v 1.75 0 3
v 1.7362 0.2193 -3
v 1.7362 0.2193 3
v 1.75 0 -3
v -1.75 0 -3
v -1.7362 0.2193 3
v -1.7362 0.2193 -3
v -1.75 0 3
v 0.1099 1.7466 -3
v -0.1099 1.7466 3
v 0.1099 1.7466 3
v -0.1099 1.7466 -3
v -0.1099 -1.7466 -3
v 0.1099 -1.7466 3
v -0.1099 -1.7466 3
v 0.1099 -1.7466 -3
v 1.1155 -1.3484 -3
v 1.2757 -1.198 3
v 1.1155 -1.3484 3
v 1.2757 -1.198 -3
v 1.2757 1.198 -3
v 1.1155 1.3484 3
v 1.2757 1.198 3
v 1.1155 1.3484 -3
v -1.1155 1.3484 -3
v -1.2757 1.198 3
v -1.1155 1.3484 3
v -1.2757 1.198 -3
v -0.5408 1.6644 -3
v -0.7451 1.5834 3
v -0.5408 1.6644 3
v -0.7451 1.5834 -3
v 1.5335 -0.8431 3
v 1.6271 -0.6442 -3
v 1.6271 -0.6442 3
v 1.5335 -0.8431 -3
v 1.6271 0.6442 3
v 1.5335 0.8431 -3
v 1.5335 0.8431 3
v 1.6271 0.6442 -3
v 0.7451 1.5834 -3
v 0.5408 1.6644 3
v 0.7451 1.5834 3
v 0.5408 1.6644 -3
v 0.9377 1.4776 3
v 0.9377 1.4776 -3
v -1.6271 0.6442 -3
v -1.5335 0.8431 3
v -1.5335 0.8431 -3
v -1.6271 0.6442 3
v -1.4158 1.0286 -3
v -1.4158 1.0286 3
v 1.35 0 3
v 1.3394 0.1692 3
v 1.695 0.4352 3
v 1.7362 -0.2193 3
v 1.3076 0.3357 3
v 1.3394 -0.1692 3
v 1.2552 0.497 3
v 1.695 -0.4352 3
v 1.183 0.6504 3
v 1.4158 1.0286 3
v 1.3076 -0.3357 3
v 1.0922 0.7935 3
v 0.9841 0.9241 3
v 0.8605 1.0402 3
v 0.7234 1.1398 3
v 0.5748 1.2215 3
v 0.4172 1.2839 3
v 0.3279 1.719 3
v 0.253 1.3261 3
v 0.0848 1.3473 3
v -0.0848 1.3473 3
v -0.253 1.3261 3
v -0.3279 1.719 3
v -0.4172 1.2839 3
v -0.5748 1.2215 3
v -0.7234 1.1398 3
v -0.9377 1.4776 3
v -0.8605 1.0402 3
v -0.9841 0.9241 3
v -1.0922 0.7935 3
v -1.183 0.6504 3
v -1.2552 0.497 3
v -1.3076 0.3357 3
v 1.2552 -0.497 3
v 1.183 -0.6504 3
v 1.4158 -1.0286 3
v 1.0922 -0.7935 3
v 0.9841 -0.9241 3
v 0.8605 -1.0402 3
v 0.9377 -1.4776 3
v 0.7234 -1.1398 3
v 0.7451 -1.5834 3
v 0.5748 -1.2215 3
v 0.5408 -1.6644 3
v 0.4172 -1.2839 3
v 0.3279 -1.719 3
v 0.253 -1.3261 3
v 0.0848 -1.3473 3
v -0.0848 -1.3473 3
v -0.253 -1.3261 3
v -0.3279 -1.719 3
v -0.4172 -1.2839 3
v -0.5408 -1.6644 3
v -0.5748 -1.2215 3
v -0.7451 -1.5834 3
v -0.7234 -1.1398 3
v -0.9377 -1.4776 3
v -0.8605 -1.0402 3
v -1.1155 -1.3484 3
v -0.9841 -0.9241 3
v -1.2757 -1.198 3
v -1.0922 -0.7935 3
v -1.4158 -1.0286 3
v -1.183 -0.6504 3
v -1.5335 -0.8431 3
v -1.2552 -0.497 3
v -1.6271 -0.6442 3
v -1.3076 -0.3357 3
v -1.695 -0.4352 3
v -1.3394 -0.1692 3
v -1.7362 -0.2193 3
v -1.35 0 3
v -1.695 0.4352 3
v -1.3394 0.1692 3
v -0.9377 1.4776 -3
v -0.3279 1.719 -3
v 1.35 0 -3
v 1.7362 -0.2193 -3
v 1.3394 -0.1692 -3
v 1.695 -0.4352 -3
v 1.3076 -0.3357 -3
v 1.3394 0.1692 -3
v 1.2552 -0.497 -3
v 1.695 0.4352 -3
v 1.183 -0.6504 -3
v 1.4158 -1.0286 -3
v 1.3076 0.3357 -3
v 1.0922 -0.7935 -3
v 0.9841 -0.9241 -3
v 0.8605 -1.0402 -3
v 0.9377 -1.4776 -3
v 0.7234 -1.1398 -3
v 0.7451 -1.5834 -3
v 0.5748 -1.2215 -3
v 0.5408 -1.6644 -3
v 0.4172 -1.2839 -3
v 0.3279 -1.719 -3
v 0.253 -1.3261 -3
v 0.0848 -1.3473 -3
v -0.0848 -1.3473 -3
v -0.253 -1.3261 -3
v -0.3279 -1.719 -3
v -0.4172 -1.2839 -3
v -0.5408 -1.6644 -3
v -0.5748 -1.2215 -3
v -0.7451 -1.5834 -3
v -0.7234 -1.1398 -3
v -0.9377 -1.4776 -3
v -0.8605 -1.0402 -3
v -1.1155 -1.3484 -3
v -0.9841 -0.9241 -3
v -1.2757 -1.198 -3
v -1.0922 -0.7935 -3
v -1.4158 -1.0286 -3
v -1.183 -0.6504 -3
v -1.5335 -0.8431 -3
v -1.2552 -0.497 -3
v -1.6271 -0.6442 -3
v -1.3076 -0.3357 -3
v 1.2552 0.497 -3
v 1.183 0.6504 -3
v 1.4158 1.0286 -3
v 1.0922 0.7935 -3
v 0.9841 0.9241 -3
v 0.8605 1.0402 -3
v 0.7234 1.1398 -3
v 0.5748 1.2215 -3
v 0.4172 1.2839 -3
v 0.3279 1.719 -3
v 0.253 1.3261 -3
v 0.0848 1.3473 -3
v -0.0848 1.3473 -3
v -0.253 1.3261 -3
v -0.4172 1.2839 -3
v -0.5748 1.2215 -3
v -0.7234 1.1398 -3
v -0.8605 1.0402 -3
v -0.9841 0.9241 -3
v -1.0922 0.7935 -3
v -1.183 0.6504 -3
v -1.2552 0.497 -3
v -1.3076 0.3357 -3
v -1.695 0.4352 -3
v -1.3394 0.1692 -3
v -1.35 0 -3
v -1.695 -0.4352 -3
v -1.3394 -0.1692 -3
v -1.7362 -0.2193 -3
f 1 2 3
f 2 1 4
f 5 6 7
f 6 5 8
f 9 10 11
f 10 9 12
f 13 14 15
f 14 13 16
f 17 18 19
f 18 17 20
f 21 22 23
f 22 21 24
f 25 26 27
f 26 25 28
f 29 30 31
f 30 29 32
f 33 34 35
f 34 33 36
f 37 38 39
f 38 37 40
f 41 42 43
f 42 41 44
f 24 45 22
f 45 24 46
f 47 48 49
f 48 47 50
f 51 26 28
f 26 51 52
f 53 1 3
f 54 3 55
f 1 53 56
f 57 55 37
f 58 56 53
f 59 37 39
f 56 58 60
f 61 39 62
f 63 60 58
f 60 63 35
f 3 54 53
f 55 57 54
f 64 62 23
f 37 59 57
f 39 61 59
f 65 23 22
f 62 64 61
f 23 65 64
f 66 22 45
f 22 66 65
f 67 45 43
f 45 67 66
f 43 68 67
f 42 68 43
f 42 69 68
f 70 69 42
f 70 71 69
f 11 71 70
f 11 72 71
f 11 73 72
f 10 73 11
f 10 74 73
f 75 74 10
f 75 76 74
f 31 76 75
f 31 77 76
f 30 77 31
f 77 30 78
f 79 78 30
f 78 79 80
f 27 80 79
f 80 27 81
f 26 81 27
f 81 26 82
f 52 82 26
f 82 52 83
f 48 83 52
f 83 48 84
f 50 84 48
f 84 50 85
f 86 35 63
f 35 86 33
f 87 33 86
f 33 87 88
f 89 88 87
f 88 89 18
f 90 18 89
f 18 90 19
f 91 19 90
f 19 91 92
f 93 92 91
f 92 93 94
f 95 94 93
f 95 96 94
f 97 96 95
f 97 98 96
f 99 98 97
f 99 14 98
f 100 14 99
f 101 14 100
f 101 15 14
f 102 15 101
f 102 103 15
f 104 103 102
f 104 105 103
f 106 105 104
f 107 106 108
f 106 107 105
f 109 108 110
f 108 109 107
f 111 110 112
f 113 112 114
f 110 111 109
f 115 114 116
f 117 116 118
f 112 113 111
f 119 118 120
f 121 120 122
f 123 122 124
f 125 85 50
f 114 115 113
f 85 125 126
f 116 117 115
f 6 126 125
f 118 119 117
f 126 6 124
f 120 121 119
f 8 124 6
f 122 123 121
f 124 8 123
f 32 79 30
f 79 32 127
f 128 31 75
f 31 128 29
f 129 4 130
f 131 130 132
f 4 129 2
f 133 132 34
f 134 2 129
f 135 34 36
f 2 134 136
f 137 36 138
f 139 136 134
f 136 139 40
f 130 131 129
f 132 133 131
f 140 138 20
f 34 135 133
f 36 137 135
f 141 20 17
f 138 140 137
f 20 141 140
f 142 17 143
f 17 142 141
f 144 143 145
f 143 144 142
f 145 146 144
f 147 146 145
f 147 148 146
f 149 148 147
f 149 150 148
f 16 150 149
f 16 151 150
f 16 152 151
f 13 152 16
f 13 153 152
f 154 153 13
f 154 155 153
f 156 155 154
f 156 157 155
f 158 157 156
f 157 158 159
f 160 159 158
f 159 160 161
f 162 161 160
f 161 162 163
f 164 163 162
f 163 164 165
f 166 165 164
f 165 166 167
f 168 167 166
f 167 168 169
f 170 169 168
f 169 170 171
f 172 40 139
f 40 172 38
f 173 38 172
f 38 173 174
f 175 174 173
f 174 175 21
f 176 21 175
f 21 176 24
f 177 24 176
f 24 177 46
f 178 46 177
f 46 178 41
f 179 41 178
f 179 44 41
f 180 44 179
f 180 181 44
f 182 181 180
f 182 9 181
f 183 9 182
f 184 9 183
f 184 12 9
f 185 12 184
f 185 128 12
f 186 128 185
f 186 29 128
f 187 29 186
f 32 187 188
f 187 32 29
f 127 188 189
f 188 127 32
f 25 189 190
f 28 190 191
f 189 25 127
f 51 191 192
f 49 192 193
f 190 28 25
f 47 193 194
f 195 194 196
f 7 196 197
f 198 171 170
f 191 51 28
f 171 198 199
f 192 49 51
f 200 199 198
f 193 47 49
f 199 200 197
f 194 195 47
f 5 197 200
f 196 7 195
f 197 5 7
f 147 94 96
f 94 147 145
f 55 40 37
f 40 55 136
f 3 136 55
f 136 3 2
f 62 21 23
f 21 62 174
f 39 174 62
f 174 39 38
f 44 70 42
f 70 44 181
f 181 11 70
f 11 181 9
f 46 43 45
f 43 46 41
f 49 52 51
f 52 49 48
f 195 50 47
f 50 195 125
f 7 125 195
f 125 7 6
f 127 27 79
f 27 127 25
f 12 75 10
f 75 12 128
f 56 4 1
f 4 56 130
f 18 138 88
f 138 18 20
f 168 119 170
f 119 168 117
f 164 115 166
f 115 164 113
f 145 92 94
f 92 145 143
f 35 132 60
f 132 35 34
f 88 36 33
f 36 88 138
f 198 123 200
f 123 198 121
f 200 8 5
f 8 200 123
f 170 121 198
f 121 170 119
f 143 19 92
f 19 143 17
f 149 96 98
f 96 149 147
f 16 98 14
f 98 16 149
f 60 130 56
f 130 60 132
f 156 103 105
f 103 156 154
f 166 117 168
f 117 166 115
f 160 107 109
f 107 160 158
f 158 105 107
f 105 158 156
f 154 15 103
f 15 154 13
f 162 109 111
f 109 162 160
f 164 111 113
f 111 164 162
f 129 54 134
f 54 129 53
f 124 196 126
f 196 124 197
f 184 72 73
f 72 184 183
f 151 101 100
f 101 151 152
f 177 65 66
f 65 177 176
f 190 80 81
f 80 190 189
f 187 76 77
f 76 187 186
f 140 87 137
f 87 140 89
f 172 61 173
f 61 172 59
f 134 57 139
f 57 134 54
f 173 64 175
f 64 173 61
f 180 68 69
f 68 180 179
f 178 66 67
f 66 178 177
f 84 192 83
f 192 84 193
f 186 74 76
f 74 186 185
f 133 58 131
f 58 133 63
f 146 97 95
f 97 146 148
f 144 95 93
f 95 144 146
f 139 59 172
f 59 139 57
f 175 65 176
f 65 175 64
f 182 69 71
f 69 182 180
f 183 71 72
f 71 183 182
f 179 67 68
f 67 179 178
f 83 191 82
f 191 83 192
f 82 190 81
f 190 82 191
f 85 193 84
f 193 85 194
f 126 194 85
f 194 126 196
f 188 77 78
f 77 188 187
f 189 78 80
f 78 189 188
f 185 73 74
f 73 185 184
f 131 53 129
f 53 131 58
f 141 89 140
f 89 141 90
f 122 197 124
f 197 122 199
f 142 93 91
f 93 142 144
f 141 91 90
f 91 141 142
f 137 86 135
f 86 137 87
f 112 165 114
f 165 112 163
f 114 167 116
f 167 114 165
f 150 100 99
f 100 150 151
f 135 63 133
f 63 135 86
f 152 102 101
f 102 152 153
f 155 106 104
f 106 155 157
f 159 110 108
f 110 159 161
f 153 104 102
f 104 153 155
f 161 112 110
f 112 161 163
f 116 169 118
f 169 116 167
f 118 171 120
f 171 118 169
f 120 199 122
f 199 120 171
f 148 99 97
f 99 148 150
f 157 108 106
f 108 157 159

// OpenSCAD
$fn = 50;


difference() {
	union() {
		translate(v = [0, 0, -3.0000000000]) {
			cylinder(h = 6, r = 1.7500000000);
		}
	}
	union() {
		translate(v = [0, 0, -100.0000000000]) {
			cylinder(h = 200, r = 1.3500000000);
		}
	}
}
